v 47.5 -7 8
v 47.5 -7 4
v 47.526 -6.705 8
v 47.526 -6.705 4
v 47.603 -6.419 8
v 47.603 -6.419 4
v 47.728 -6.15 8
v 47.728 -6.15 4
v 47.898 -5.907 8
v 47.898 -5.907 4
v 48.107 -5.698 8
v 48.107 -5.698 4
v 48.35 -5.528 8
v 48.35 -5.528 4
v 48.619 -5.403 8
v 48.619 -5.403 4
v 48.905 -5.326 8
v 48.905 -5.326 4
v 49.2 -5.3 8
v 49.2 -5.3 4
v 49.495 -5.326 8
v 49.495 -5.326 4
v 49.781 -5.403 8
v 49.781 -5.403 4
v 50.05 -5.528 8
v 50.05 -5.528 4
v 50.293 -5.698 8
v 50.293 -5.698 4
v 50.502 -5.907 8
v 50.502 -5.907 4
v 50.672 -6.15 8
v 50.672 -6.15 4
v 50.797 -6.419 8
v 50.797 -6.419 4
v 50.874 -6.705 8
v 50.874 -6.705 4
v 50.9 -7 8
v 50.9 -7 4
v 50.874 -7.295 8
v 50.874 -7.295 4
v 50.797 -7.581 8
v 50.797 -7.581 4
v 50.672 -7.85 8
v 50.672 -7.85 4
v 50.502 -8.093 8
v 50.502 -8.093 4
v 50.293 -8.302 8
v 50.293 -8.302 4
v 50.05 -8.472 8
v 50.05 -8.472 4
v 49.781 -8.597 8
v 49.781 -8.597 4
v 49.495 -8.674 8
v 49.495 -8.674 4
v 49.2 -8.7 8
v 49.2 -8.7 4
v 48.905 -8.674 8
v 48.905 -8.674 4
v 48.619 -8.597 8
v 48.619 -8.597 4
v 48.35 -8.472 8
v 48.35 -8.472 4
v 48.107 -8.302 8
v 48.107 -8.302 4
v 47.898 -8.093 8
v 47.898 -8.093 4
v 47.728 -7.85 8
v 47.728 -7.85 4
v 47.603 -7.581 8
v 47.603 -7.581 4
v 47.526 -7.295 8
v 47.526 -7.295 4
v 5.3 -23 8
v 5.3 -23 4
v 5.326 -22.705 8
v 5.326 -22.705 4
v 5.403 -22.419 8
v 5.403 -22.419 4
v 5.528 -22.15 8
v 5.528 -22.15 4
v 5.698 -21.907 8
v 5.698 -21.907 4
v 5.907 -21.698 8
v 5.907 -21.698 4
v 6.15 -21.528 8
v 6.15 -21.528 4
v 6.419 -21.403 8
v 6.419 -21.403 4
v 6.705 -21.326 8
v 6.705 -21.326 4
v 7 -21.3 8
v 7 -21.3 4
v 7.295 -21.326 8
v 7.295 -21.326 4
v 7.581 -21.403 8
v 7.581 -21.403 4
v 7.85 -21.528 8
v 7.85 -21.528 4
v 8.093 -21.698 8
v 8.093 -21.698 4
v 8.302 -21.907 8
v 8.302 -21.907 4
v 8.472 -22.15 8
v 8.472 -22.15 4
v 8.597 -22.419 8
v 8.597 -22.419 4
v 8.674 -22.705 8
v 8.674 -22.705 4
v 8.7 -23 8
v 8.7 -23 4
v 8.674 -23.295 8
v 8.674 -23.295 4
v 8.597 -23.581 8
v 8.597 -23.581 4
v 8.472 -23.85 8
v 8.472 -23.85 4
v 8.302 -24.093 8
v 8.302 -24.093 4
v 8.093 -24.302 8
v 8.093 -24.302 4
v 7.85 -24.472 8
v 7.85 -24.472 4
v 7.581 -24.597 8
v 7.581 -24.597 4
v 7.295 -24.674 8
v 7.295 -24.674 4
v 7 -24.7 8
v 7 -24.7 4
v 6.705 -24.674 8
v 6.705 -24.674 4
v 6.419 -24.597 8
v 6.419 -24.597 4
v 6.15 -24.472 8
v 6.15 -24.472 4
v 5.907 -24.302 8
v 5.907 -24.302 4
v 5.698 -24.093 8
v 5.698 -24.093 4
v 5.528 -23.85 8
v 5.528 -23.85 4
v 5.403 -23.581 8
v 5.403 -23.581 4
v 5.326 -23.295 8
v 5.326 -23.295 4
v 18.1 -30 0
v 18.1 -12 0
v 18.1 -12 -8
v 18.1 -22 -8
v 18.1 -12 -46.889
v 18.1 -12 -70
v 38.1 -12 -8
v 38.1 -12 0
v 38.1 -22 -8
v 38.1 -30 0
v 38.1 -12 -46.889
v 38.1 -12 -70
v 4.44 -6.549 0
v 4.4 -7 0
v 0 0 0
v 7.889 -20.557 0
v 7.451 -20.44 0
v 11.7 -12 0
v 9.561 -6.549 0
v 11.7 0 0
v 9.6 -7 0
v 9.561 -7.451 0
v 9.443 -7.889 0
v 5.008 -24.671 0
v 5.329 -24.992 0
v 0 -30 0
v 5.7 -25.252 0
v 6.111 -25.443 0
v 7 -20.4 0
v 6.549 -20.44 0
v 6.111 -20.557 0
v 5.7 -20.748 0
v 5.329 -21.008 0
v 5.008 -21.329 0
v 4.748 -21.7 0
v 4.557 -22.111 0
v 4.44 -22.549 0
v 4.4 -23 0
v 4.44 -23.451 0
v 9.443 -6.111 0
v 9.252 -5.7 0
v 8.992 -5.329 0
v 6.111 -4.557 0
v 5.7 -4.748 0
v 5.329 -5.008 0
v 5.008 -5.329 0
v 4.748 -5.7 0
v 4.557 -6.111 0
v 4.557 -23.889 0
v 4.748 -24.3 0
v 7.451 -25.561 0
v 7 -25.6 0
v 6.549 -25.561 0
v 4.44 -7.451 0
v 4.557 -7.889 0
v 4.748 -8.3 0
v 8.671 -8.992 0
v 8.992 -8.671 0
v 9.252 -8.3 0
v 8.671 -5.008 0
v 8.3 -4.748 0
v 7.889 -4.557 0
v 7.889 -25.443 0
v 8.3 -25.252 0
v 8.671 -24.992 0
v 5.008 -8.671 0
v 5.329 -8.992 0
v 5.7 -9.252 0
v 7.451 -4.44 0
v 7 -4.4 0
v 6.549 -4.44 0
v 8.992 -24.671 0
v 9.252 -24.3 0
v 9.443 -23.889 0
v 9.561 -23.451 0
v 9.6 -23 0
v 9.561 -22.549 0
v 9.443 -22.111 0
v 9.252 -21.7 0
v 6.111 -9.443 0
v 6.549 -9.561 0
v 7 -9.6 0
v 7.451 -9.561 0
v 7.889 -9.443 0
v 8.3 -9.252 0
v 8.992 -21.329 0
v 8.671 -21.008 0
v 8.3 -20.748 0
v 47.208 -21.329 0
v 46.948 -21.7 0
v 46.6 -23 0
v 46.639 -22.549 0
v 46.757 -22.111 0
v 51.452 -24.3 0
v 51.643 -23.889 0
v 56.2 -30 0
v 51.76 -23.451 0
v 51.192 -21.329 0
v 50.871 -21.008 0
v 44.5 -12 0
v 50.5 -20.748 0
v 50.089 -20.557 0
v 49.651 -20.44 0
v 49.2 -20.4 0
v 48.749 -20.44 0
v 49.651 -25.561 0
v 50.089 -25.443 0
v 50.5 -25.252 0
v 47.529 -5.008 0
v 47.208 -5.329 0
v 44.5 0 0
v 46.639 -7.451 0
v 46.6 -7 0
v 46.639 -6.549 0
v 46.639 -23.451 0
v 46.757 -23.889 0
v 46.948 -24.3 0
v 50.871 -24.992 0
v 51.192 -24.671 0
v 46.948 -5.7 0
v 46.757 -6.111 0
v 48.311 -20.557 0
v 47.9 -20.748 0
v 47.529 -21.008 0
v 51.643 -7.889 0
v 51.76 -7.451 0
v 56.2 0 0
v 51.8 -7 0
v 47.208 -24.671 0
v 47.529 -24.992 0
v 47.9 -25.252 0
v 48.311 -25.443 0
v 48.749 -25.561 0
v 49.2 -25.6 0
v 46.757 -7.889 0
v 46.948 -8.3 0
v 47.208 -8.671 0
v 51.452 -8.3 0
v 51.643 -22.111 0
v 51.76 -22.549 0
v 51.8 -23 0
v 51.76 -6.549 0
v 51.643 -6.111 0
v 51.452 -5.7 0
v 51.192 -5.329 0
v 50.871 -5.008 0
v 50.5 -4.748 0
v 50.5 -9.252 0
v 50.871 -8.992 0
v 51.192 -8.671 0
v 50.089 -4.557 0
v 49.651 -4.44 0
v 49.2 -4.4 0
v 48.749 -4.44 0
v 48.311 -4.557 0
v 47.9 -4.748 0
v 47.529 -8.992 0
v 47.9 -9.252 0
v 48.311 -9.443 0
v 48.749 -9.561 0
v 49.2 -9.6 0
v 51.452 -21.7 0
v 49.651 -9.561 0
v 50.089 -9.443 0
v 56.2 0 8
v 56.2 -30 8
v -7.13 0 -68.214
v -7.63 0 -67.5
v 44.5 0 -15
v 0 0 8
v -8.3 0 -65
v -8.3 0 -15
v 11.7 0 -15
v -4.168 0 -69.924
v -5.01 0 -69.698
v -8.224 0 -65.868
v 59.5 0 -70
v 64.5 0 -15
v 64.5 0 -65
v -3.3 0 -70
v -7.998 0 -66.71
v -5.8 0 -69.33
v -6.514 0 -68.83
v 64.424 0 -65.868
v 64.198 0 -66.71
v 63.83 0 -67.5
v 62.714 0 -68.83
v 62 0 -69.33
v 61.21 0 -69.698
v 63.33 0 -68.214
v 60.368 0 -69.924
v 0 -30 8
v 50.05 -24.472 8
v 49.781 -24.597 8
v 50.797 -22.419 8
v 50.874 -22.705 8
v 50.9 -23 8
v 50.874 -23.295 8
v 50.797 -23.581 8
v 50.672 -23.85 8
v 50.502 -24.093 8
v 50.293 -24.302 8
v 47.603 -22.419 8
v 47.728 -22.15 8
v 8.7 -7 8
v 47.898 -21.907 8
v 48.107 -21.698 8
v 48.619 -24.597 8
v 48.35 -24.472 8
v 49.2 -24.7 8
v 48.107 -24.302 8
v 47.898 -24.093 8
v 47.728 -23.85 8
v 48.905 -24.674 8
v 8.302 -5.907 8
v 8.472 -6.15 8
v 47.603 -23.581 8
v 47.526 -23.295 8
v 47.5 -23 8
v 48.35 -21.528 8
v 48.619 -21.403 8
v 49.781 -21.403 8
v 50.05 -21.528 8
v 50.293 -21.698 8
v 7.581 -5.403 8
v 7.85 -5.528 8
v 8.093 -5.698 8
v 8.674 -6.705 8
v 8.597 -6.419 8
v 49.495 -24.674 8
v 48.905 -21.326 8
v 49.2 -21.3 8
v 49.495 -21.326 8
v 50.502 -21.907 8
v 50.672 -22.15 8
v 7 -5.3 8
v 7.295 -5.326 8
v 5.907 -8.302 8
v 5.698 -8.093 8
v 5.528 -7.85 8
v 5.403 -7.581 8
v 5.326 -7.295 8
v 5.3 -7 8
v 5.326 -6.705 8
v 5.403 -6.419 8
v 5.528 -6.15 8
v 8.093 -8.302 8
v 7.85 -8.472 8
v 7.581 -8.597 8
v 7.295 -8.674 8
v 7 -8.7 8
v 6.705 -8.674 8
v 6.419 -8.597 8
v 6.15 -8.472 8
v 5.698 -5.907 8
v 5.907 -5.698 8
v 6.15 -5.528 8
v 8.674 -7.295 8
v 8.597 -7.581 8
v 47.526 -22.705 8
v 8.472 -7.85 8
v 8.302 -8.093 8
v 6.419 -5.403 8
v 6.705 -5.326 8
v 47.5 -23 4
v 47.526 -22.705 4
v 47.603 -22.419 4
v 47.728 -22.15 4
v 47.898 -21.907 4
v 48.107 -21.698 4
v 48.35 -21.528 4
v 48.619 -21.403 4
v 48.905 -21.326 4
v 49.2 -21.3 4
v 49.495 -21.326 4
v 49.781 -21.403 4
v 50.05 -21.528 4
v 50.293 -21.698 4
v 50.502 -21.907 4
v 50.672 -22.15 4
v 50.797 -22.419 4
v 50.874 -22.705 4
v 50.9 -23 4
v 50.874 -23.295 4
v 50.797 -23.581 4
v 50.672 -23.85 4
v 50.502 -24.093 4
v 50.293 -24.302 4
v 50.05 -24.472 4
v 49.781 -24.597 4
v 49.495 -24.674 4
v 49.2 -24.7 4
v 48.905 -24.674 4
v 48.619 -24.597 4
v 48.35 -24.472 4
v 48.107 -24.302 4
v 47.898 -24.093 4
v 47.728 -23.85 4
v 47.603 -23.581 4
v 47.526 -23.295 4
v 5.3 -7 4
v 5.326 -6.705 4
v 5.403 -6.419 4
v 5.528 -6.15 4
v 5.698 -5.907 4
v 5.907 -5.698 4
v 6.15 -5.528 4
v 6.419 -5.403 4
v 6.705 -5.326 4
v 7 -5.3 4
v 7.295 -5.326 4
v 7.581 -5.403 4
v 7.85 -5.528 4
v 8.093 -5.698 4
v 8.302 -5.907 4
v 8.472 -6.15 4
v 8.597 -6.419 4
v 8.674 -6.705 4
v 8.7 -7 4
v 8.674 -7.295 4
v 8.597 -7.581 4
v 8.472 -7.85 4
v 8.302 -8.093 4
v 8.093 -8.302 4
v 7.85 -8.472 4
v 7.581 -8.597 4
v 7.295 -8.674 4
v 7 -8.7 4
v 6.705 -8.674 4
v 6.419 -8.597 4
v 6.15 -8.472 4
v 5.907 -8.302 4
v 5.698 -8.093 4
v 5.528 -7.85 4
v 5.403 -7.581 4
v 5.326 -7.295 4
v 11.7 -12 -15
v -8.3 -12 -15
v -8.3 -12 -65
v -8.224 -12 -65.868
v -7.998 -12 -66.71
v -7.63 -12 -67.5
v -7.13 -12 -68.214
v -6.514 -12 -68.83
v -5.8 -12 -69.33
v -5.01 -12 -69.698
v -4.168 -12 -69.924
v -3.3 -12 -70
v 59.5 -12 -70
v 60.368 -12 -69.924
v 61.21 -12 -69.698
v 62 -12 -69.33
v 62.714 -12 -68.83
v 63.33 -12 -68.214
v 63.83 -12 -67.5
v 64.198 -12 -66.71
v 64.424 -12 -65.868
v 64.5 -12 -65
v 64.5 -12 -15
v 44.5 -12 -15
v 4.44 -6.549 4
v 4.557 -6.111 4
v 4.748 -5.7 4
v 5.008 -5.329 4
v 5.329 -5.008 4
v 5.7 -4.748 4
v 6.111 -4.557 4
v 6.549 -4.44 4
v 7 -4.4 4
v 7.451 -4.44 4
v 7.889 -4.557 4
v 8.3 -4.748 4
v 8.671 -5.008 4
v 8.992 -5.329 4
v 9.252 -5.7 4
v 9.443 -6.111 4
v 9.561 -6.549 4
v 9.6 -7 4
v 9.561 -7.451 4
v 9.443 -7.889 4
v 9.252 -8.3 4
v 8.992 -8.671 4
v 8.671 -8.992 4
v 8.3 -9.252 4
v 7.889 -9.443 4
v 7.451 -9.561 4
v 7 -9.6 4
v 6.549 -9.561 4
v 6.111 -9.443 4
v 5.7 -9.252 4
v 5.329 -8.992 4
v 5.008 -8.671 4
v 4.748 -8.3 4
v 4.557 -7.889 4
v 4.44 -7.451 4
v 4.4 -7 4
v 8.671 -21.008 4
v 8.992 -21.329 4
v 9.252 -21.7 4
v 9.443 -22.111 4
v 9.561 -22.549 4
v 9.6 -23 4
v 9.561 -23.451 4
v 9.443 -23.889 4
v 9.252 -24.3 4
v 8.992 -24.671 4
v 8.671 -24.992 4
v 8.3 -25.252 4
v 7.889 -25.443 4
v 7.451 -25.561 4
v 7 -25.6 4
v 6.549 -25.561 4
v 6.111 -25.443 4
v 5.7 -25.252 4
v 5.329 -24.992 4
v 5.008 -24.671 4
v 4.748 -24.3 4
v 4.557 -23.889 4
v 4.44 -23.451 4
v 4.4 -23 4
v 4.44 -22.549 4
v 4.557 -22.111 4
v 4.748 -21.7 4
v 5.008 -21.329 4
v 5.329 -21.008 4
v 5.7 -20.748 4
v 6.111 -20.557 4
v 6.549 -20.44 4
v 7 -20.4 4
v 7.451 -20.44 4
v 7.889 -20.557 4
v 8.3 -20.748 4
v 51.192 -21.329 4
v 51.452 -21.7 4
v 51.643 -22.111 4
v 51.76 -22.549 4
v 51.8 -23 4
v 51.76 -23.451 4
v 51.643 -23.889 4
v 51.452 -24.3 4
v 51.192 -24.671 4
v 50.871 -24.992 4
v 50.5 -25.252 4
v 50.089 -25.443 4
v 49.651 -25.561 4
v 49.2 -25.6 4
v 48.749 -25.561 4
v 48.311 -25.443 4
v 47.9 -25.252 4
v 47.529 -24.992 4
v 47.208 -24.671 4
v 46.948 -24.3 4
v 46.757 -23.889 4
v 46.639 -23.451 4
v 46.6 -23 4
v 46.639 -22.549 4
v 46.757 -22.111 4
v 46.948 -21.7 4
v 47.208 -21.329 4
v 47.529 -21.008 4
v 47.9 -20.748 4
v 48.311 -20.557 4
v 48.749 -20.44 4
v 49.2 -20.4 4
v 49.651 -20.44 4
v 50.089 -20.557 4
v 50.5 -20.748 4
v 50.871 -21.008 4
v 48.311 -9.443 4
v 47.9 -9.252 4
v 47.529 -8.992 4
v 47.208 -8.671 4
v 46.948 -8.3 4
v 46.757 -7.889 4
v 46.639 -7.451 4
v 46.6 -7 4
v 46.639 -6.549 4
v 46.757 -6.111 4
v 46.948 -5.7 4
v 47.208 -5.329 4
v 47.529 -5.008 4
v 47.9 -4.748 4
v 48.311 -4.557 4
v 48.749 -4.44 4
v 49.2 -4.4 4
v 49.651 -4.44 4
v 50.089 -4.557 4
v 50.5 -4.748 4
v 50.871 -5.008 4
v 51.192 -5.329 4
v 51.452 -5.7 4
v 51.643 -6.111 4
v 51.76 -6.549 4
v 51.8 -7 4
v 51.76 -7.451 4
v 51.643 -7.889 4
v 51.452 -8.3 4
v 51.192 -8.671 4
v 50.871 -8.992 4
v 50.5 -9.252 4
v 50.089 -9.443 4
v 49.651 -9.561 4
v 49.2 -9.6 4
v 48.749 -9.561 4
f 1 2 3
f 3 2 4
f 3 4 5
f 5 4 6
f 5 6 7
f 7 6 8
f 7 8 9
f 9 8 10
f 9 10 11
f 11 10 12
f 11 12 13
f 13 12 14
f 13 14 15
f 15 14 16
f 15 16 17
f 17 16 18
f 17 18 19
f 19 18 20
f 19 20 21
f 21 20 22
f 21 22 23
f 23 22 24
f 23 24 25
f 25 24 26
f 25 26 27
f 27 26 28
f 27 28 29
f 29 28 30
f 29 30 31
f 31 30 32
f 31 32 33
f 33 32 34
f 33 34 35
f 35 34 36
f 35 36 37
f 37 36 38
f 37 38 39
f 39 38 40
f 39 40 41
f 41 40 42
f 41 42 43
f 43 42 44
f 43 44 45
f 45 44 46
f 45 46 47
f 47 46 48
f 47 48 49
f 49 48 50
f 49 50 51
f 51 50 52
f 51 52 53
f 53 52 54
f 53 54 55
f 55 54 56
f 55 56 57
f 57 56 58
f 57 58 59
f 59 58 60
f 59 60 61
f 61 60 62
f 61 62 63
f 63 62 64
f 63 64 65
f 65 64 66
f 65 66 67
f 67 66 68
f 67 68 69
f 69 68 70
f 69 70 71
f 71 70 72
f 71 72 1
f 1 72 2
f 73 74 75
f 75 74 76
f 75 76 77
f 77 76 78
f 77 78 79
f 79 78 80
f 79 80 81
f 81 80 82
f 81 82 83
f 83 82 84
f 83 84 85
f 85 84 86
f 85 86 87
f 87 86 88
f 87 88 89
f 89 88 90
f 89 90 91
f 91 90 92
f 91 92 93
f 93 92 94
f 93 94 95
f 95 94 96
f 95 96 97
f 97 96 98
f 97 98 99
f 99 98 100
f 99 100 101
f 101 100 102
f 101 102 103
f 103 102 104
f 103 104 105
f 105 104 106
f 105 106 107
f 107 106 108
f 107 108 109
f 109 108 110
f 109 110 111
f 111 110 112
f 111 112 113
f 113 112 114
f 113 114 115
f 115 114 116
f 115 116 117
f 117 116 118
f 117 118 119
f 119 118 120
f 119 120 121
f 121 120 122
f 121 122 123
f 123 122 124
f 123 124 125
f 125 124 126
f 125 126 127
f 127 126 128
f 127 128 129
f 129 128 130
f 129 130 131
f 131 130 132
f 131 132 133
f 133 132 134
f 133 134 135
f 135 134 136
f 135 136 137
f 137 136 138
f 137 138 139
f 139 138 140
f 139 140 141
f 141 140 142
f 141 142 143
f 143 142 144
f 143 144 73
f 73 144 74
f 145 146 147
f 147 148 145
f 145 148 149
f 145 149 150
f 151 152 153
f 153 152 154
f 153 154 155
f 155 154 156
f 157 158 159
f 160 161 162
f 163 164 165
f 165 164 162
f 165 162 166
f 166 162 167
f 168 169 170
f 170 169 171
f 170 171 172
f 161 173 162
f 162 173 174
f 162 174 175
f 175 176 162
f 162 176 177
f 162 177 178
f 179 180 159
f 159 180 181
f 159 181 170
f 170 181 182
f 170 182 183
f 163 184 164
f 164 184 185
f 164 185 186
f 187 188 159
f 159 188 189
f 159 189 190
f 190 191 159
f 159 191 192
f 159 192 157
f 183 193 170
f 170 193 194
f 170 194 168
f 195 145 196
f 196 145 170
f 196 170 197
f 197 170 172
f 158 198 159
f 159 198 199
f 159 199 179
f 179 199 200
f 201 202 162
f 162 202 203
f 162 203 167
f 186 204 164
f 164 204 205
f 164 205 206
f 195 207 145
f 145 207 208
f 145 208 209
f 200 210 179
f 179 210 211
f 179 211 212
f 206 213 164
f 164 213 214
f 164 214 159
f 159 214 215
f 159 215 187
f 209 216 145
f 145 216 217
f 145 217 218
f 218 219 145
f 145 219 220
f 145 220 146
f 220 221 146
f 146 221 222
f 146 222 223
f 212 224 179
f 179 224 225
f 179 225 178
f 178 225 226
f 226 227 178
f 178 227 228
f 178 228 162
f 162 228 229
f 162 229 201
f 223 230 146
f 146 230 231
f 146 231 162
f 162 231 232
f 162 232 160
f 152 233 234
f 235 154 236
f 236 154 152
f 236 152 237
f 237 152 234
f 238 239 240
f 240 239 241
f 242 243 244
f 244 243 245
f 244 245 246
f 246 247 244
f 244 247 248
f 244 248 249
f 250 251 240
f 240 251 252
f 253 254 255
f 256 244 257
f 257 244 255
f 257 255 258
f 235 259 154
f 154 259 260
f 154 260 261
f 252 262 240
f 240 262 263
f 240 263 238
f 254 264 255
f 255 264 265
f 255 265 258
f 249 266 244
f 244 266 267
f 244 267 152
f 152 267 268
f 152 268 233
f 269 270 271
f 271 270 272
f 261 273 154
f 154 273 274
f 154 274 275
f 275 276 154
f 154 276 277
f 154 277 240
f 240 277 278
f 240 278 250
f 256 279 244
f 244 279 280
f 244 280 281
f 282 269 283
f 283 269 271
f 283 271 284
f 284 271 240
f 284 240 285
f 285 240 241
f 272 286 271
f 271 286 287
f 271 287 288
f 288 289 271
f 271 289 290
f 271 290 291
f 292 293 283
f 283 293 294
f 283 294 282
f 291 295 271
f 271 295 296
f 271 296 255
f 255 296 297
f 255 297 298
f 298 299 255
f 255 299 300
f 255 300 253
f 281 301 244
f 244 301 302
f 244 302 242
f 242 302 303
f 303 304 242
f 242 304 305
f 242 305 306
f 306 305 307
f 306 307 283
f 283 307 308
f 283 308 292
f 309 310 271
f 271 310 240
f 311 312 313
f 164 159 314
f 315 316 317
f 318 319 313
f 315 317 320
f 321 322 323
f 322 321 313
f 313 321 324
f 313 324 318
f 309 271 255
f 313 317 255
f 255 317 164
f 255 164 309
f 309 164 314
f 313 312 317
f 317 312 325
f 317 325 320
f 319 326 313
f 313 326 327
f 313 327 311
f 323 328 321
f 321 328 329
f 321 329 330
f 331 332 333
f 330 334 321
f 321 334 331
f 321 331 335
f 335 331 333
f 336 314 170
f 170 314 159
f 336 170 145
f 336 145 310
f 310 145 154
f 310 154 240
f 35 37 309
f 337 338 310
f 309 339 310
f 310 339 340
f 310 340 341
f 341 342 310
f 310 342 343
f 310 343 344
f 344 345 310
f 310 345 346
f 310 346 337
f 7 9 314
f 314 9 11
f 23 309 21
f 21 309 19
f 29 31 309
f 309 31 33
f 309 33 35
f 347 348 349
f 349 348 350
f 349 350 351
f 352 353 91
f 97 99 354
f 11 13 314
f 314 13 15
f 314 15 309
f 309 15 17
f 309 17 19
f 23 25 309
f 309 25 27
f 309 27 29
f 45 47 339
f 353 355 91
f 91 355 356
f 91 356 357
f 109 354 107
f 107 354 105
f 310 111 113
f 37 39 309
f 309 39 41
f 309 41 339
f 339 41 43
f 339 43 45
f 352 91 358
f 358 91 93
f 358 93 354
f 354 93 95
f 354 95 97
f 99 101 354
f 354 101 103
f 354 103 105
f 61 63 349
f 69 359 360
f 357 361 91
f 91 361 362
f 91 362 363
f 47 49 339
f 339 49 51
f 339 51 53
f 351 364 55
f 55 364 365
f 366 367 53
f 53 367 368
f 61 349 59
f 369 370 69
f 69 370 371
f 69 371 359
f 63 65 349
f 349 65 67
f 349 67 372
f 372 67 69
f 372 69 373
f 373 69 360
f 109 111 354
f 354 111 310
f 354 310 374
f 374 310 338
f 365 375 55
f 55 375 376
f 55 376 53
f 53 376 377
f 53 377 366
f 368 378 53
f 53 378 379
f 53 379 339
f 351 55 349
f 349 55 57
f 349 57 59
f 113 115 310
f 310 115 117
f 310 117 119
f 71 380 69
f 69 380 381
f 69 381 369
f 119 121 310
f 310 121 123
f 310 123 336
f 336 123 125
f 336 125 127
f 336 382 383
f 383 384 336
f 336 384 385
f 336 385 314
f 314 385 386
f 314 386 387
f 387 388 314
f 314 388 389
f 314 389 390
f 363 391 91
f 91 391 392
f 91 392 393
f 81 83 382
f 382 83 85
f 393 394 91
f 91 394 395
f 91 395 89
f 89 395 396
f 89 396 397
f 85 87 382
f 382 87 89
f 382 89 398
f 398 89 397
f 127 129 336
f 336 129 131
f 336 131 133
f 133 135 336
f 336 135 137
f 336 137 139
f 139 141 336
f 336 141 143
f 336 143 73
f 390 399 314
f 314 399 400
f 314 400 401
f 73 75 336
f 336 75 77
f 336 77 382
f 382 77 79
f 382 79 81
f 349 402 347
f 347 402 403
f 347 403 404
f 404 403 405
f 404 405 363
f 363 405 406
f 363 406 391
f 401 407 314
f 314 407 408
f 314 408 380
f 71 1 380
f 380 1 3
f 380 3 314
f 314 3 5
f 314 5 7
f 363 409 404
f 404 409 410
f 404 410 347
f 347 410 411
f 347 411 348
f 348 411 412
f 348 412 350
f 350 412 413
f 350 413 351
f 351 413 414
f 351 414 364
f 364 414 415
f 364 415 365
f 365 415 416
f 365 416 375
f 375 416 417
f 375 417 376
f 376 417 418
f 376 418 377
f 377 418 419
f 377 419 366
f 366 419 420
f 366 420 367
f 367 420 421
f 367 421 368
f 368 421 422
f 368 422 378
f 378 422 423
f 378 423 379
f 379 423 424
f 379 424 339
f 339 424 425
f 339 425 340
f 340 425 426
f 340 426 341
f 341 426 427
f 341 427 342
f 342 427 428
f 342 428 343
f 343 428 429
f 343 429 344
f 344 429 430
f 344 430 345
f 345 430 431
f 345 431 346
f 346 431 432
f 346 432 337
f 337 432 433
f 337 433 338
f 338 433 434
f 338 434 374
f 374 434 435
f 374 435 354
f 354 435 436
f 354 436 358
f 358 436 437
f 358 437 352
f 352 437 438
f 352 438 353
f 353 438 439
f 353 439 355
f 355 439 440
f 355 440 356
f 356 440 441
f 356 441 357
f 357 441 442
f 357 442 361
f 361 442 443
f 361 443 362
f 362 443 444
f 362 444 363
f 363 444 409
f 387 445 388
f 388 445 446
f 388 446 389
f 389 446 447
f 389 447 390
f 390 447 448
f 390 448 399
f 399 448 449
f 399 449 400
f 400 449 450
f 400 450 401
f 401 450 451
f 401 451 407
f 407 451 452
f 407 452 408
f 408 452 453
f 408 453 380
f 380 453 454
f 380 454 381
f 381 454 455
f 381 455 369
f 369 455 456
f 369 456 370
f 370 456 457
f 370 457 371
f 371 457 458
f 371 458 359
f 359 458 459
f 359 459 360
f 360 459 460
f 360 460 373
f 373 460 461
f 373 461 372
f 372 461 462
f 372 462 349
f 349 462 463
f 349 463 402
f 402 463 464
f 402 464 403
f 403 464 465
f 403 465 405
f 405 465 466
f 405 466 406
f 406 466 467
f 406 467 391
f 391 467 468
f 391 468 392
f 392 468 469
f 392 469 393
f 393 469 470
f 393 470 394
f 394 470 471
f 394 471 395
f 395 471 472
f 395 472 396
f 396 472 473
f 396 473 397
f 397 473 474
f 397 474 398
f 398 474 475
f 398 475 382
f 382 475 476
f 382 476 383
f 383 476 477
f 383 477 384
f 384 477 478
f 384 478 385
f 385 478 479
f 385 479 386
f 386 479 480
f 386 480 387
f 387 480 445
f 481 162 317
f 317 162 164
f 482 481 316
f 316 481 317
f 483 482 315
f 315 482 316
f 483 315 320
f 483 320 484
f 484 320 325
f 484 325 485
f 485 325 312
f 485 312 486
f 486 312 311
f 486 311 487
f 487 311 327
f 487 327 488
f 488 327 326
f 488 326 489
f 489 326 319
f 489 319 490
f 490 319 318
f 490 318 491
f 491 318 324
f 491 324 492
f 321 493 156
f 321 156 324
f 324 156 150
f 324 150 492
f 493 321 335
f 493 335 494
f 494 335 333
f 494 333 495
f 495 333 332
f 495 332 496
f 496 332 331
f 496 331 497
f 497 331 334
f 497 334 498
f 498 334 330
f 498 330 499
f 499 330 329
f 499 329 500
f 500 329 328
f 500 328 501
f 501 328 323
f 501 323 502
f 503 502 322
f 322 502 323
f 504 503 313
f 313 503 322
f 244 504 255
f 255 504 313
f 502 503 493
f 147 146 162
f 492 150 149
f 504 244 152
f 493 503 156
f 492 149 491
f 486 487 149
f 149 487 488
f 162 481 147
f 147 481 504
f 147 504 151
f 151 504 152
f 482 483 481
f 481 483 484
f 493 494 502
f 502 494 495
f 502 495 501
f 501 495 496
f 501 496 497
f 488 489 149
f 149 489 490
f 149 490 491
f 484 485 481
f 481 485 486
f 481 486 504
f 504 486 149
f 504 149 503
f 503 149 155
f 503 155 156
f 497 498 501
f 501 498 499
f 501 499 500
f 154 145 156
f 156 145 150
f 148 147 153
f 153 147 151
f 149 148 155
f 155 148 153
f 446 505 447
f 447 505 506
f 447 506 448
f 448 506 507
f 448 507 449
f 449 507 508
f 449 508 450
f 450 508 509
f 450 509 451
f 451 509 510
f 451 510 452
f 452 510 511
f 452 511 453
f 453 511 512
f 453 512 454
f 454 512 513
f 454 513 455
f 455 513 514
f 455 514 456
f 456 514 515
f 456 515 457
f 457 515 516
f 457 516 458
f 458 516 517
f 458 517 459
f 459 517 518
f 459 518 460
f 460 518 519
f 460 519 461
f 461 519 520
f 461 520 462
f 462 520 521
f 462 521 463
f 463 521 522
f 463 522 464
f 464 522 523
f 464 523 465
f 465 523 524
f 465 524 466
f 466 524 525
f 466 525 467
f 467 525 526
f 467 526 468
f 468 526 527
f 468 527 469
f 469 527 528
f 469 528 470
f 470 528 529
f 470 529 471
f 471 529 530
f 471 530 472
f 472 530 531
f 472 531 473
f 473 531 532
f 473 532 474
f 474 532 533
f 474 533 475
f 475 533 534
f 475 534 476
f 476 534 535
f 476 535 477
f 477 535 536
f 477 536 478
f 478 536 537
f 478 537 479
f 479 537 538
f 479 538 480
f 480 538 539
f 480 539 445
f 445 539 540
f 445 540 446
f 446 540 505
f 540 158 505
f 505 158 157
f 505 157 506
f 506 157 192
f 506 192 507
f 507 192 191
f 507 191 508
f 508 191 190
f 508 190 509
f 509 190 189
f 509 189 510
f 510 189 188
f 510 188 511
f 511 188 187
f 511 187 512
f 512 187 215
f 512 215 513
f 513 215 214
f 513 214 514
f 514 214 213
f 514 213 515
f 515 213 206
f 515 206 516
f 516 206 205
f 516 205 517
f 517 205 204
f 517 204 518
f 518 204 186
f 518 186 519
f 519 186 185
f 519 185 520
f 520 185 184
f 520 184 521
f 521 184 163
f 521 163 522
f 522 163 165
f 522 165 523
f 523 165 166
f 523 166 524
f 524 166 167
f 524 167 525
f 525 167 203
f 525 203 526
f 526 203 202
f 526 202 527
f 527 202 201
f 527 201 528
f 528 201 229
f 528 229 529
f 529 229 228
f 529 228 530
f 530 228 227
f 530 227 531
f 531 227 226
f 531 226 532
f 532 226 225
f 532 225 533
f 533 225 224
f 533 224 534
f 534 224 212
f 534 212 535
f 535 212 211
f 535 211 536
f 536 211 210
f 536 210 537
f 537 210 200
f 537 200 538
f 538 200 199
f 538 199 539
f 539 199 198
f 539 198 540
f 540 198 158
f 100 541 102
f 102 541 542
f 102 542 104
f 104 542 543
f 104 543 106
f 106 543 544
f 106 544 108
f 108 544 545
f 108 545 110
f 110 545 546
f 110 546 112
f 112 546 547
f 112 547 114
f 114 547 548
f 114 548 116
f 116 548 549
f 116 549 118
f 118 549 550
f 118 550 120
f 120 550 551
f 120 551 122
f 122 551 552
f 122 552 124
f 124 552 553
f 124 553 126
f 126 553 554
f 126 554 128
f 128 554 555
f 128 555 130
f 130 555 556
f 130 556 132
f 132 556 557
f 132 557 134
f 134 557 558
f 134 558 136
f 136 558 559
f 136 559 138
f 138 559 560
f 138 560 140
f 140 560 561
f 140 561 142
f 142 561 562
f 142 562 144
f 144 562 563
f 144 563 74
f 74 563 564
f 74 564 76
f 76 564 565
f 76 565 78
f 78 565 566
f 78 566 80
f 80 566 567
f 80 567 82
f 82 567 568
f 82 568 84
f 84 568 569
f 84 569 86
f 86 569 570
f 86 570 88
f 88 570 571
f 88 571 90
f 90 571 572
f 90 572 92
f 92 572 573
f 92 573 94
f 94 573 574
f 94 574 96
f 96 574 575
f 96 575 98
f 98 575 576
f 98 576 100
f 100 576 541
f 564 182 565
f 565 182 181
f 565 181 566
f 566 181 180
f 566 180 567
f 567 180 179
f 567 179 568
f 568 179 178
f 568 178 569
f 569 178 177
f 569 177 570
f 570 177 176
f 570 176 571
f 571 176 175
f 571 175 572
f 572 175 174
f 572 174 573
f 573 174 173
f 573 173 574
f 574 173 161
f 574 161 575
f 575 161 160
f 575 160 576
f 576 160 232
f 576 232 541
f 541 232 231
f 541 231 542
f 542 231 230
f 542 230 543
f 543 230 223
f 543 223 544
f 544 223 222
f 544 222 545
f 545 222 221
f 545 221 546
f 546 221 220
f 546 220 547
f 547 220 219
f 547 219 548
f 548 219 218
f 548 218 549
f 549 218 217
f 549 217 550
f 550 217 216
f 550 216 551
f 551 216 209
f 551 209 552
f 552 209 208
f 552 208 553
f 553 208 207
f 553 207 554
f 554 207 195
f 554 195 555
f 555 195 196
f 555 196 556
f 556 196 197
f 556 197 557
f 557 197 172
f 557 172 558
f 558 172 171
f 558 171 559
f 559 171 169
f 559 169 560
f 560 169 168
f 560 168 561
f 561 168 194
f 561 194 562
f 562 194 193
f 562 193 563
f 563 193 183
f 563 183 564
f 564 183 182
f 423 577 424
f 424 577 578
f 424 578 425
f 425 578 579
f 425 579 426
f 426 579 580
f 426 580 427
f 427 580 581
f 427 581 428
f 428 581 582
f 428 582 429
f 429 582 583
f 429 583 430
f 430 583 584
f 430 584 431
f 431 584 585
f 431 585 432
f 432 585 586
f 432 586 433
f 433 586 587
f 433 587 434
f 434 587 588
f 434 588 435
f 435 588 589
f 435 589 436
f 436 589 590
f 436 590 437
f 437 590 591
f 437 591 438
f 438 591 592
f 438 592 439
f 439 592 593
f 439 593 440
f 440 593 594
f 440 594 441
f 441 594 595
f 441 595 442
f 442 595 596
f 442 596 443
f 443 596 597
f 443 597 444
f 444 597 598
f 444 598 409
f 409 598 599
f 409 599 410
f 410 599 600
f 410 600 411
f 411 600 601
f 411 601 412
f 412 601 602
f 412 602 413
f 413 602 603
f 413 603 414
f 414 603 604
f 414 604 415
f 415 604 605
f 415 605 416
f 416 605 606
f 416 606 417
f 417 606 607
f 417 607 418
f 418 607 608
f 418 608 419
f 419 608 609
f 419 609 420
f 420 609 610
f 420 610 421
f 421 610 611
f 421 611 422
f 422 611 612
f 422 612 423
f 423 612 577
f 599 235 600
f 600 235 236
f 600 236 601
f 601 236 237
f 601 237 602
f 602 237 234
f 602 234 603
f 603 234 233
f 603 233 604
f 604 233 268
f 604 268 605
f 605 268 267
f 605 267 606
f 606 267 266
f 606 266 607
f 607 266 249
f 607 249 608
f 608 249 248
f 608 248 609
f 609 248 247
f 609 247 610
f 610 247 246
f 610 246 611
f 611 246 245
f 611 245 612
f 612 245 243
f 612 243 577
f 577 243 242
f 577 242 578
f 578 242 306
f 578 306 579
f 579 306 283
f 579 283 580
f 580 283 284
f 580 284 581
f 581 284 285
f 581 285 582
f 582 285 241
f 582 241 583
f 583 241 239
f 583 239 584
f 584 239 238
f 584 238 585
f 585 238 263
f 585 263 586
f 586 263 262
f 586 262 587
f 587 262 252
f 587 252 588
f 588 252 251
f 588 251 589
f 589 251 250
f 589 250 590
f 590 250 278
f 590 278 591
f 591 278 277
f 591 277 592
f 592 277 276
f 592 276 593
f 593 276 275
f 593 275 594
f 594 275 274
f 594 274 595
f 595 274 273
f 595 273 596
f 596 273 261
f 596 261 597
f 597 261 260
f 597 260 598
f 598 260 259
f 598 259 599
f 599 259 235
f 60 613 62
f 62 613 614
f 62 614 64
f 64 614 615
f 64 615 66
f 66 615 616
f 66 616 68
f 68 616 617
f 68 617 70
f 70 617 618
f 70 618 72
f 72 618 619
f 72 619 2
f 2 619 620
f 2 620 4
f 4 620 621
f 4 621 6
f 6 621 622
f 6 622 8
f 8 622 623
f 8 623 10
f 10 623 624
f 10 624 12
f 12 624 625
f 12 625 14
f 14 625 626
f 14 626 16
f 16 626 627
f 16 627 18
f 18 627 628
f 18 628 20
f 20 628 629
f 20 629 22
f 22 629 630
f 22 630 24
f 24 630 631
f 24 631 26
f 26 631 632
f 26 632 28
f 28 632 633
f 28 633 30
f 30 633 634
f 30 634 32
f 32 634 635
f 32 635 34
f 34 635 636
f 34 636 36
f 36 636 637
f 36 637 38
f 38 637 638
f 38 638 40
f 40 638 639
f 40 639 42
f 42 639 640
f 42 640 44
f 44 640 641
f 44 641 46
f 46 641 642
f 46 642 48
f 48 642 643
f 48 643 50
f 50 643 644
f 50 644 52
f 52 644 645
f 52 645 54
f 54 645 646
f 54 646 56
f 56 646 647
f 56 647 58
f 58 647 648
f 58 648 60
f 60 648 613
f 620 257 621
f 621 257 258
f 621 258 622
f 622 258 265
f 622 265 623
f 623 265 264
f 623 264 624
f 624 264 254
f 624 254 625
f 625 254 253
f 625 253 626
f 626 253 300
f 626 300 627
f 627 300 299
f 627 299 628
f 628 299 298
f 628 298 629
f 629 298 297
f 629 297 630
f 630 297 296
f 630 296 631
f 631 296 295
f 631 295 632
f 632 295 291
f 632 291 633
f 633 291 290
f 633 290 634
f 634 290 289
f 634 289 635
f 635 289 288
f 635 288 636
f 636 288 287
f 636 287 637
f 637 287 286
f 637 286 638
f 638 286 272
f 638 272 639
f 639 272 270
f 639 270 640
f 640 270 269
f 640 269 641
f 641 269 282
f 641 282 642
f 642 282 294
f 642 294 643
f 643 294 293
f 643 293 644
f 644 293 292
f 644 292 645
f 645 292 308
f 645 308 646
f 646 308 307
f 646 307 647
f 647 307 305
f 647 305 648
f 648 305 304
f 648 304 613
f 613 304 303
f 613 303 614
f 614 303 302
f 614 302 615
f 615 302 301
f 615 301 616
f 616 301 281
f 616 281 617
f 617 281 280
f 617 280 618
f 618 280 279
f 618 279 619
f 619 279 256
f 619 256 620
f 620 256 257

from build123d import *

# Parameters (mm, degrees)
SKETCH1_W                      = 56.2
SKETCH1_H                      = 30
BOSS_EXTRUDE1_DEPTH            = 5
SKETCH3_W                      = 56.2
SKETCH3_H                      = 30
BOSS_EXTRUDE2_DEPTH            = 3
SKETCH4_R                      = 1.7
CUT_EXTRUDE2_DEPTH             = 8
BOSS_EXTRUDE3_DEPTH            = 12
BOSS_EXTRUDE4_DEPTH            = 10
BOSS_EXTRUDE4_DEPTH_BACK       = 10
CUT_EXTRUDE3_REACH             = 38.4
CUT_EXTRUDE3_DIRECTION_2_REACH = 38.4
SKETCH8_R                      = 2.6
CUT_EXTRUDE4_DEPTH             = 4


with BuildPart() as part:
    # Sketch1 → Boss-Extrude1 (new body)
    with BuildSketch(Plane.XY):
        with Locations((28.1, -15)):
            Rectangle(SKETCH1_W, SKETCH1_H)
    extrude(amount=BOSS_EXTRUDE1_DEPTH)

    # Sketch3 → Boss-Extrude2 (add)
    with BuildSketch(Plane.XY.offset(5)):
        with Locations((28.1, -15)):
            Rectangle(SKETCH3_W, SKETCH3_H)
    extrude(amount=BOSS_EXTRUDE2_DEPTH)

    # Sketch4 → Cut-Extrude2 (cut)
    with BuildSketch(Plane(origin=(0, 0, 0), x_dir=(-1, 0, 0), z_dir=(0, 0, -1))):
        with Locations((-49.2, -7)):
            Circle(SKETCH4_R)
        with Locations((-7, -7)):
            Circle(SKETCH4_R)
        with Locations((-7, -23)):
            Circle(SKETCH4_R)
        with Locations((-49.2, -23)):
            Circle(SKETCH4_R)
    extrude(amount=-CUT_EXTRUDE2_DEPTH, mode=Mode.SUBTRACT)

    # Sketch5 → Boss-Extrude3 (add)
    with BuildSketch(Plane(origin=(0, 0, 0), x_dir=(1, 0, 0), z_dir=(0, 1, 0))):
        with BuildLine():
            Line((44.5, 0), (11.7, 0))
            Line((11.7, 0), (11.7, 15))
            Line((11.7, 15), (-8.3, 15))
            Line((-8.3, 15), (-8.3, 65))
            ThreePointArc((-8.3, 65), (-6.835533906, 68.535533906), (-3.3, 70))
            Line((-3.3, 70), (59.5, 70))
            ThreePointArc((59.5, 70), (63.035533906, 68.535533906), (64.5, 65))
            Line((64.5, 65), (64.5, 15))
            Line((64.5, 15), (44.5, 15))
            Line((44.5, 15), (44.5, 0))
        make_face()
    extrude(amount=-BOSS_EXTRUDE3_DEPTH)

    # Sketch6 → Boss-Extrude4 (add, two sides)
    with BuildSketch(Plane(origin=(28.1, 0, 0), x_dir=(0, 0, -1), z_dir=(1, 0, 0))) as boss_extrude4_sk:
        Polygon((0, -12), (0, -30), (70, -12), align=None)
    extrude(amount=BOSS_EXTRUDE4_DEPTH)
    extrude(boss_extrude4_sk.sketch, amount=-BOSS_EXTRUDE4_DEPTH_BACK)

    # Sketch7 → Cut-Extrude3 (cut, up to next)
    with BuildSketch(Plane(origin=(28.1, 0, 0), x_dir=(0, 0, -1), z_dir=(1, 0, 0)), mode=Mode.PRIVATE) as cut_extrude3_sk1:
        Polygon((8, -12), (8, -22), (46.888888889, -12), align=None)
    cut_extrude3_tool1 = extrude(cut_extrude3_sk1.sketch, amount=-CUT_EXTRUDE3_REACH, mode=Mode.PRIVATE) & part.part
    add(cut_extrude3_tool1.solids().sort_by_distance((28.1, -15.333333, -20.962963))[0], mode=Mode.SUBTRACT)

    # Sketch7 → Cut-Extrude3 direction 2 (cut, up to next)
    with BuildSketch(Plane(origin=(28.1, 0, 0), x_dir=(0, 0, -1), z_dir=(1, 0, 0)), mode=Mode.PRIVATE) as cut_extrude3_direction_2_sk1:
        Polygon((8, -12), (8, -22), (46.888888889, -12), align=None)
    cut_extrude3_direction_2_tool1 = extrude(cut_extrude3_direction_2_sk1.sketch, amount=CUT_EXTRUDE3_DIRECTION_2_REACH, mode=Mode.PRIVATE) & part.part
    add(cut_extrude3_direction_2_tool1.solids().sort_by_distance((28.1, -15.333333, -20.962963))[0], mode=Mode.SUBTRACT)

    # Sketch8 → Cut-Extrude4 (cut)
    with BuildSketch(Plane(origin=(0, 0, 0), x_dir=(-1, 0, 0), z_dir=(0, 0, -1))):
        with Locations((-49.2, -7)):
            Circle(SKETCH8_R)
        with Locations((-7, -7)):
            Circle(SKETCH8_R)
        with Locations((-7, -23)):
            Circle(SKETCH8_R)
        with Locations((-49.2, -23)):
            Circle(SKETCH8_R)
    extrude(amount=-CUT_EXTRUDE4_DEPTH, mode=Mode.SUBTRACT)


solid = part.part
